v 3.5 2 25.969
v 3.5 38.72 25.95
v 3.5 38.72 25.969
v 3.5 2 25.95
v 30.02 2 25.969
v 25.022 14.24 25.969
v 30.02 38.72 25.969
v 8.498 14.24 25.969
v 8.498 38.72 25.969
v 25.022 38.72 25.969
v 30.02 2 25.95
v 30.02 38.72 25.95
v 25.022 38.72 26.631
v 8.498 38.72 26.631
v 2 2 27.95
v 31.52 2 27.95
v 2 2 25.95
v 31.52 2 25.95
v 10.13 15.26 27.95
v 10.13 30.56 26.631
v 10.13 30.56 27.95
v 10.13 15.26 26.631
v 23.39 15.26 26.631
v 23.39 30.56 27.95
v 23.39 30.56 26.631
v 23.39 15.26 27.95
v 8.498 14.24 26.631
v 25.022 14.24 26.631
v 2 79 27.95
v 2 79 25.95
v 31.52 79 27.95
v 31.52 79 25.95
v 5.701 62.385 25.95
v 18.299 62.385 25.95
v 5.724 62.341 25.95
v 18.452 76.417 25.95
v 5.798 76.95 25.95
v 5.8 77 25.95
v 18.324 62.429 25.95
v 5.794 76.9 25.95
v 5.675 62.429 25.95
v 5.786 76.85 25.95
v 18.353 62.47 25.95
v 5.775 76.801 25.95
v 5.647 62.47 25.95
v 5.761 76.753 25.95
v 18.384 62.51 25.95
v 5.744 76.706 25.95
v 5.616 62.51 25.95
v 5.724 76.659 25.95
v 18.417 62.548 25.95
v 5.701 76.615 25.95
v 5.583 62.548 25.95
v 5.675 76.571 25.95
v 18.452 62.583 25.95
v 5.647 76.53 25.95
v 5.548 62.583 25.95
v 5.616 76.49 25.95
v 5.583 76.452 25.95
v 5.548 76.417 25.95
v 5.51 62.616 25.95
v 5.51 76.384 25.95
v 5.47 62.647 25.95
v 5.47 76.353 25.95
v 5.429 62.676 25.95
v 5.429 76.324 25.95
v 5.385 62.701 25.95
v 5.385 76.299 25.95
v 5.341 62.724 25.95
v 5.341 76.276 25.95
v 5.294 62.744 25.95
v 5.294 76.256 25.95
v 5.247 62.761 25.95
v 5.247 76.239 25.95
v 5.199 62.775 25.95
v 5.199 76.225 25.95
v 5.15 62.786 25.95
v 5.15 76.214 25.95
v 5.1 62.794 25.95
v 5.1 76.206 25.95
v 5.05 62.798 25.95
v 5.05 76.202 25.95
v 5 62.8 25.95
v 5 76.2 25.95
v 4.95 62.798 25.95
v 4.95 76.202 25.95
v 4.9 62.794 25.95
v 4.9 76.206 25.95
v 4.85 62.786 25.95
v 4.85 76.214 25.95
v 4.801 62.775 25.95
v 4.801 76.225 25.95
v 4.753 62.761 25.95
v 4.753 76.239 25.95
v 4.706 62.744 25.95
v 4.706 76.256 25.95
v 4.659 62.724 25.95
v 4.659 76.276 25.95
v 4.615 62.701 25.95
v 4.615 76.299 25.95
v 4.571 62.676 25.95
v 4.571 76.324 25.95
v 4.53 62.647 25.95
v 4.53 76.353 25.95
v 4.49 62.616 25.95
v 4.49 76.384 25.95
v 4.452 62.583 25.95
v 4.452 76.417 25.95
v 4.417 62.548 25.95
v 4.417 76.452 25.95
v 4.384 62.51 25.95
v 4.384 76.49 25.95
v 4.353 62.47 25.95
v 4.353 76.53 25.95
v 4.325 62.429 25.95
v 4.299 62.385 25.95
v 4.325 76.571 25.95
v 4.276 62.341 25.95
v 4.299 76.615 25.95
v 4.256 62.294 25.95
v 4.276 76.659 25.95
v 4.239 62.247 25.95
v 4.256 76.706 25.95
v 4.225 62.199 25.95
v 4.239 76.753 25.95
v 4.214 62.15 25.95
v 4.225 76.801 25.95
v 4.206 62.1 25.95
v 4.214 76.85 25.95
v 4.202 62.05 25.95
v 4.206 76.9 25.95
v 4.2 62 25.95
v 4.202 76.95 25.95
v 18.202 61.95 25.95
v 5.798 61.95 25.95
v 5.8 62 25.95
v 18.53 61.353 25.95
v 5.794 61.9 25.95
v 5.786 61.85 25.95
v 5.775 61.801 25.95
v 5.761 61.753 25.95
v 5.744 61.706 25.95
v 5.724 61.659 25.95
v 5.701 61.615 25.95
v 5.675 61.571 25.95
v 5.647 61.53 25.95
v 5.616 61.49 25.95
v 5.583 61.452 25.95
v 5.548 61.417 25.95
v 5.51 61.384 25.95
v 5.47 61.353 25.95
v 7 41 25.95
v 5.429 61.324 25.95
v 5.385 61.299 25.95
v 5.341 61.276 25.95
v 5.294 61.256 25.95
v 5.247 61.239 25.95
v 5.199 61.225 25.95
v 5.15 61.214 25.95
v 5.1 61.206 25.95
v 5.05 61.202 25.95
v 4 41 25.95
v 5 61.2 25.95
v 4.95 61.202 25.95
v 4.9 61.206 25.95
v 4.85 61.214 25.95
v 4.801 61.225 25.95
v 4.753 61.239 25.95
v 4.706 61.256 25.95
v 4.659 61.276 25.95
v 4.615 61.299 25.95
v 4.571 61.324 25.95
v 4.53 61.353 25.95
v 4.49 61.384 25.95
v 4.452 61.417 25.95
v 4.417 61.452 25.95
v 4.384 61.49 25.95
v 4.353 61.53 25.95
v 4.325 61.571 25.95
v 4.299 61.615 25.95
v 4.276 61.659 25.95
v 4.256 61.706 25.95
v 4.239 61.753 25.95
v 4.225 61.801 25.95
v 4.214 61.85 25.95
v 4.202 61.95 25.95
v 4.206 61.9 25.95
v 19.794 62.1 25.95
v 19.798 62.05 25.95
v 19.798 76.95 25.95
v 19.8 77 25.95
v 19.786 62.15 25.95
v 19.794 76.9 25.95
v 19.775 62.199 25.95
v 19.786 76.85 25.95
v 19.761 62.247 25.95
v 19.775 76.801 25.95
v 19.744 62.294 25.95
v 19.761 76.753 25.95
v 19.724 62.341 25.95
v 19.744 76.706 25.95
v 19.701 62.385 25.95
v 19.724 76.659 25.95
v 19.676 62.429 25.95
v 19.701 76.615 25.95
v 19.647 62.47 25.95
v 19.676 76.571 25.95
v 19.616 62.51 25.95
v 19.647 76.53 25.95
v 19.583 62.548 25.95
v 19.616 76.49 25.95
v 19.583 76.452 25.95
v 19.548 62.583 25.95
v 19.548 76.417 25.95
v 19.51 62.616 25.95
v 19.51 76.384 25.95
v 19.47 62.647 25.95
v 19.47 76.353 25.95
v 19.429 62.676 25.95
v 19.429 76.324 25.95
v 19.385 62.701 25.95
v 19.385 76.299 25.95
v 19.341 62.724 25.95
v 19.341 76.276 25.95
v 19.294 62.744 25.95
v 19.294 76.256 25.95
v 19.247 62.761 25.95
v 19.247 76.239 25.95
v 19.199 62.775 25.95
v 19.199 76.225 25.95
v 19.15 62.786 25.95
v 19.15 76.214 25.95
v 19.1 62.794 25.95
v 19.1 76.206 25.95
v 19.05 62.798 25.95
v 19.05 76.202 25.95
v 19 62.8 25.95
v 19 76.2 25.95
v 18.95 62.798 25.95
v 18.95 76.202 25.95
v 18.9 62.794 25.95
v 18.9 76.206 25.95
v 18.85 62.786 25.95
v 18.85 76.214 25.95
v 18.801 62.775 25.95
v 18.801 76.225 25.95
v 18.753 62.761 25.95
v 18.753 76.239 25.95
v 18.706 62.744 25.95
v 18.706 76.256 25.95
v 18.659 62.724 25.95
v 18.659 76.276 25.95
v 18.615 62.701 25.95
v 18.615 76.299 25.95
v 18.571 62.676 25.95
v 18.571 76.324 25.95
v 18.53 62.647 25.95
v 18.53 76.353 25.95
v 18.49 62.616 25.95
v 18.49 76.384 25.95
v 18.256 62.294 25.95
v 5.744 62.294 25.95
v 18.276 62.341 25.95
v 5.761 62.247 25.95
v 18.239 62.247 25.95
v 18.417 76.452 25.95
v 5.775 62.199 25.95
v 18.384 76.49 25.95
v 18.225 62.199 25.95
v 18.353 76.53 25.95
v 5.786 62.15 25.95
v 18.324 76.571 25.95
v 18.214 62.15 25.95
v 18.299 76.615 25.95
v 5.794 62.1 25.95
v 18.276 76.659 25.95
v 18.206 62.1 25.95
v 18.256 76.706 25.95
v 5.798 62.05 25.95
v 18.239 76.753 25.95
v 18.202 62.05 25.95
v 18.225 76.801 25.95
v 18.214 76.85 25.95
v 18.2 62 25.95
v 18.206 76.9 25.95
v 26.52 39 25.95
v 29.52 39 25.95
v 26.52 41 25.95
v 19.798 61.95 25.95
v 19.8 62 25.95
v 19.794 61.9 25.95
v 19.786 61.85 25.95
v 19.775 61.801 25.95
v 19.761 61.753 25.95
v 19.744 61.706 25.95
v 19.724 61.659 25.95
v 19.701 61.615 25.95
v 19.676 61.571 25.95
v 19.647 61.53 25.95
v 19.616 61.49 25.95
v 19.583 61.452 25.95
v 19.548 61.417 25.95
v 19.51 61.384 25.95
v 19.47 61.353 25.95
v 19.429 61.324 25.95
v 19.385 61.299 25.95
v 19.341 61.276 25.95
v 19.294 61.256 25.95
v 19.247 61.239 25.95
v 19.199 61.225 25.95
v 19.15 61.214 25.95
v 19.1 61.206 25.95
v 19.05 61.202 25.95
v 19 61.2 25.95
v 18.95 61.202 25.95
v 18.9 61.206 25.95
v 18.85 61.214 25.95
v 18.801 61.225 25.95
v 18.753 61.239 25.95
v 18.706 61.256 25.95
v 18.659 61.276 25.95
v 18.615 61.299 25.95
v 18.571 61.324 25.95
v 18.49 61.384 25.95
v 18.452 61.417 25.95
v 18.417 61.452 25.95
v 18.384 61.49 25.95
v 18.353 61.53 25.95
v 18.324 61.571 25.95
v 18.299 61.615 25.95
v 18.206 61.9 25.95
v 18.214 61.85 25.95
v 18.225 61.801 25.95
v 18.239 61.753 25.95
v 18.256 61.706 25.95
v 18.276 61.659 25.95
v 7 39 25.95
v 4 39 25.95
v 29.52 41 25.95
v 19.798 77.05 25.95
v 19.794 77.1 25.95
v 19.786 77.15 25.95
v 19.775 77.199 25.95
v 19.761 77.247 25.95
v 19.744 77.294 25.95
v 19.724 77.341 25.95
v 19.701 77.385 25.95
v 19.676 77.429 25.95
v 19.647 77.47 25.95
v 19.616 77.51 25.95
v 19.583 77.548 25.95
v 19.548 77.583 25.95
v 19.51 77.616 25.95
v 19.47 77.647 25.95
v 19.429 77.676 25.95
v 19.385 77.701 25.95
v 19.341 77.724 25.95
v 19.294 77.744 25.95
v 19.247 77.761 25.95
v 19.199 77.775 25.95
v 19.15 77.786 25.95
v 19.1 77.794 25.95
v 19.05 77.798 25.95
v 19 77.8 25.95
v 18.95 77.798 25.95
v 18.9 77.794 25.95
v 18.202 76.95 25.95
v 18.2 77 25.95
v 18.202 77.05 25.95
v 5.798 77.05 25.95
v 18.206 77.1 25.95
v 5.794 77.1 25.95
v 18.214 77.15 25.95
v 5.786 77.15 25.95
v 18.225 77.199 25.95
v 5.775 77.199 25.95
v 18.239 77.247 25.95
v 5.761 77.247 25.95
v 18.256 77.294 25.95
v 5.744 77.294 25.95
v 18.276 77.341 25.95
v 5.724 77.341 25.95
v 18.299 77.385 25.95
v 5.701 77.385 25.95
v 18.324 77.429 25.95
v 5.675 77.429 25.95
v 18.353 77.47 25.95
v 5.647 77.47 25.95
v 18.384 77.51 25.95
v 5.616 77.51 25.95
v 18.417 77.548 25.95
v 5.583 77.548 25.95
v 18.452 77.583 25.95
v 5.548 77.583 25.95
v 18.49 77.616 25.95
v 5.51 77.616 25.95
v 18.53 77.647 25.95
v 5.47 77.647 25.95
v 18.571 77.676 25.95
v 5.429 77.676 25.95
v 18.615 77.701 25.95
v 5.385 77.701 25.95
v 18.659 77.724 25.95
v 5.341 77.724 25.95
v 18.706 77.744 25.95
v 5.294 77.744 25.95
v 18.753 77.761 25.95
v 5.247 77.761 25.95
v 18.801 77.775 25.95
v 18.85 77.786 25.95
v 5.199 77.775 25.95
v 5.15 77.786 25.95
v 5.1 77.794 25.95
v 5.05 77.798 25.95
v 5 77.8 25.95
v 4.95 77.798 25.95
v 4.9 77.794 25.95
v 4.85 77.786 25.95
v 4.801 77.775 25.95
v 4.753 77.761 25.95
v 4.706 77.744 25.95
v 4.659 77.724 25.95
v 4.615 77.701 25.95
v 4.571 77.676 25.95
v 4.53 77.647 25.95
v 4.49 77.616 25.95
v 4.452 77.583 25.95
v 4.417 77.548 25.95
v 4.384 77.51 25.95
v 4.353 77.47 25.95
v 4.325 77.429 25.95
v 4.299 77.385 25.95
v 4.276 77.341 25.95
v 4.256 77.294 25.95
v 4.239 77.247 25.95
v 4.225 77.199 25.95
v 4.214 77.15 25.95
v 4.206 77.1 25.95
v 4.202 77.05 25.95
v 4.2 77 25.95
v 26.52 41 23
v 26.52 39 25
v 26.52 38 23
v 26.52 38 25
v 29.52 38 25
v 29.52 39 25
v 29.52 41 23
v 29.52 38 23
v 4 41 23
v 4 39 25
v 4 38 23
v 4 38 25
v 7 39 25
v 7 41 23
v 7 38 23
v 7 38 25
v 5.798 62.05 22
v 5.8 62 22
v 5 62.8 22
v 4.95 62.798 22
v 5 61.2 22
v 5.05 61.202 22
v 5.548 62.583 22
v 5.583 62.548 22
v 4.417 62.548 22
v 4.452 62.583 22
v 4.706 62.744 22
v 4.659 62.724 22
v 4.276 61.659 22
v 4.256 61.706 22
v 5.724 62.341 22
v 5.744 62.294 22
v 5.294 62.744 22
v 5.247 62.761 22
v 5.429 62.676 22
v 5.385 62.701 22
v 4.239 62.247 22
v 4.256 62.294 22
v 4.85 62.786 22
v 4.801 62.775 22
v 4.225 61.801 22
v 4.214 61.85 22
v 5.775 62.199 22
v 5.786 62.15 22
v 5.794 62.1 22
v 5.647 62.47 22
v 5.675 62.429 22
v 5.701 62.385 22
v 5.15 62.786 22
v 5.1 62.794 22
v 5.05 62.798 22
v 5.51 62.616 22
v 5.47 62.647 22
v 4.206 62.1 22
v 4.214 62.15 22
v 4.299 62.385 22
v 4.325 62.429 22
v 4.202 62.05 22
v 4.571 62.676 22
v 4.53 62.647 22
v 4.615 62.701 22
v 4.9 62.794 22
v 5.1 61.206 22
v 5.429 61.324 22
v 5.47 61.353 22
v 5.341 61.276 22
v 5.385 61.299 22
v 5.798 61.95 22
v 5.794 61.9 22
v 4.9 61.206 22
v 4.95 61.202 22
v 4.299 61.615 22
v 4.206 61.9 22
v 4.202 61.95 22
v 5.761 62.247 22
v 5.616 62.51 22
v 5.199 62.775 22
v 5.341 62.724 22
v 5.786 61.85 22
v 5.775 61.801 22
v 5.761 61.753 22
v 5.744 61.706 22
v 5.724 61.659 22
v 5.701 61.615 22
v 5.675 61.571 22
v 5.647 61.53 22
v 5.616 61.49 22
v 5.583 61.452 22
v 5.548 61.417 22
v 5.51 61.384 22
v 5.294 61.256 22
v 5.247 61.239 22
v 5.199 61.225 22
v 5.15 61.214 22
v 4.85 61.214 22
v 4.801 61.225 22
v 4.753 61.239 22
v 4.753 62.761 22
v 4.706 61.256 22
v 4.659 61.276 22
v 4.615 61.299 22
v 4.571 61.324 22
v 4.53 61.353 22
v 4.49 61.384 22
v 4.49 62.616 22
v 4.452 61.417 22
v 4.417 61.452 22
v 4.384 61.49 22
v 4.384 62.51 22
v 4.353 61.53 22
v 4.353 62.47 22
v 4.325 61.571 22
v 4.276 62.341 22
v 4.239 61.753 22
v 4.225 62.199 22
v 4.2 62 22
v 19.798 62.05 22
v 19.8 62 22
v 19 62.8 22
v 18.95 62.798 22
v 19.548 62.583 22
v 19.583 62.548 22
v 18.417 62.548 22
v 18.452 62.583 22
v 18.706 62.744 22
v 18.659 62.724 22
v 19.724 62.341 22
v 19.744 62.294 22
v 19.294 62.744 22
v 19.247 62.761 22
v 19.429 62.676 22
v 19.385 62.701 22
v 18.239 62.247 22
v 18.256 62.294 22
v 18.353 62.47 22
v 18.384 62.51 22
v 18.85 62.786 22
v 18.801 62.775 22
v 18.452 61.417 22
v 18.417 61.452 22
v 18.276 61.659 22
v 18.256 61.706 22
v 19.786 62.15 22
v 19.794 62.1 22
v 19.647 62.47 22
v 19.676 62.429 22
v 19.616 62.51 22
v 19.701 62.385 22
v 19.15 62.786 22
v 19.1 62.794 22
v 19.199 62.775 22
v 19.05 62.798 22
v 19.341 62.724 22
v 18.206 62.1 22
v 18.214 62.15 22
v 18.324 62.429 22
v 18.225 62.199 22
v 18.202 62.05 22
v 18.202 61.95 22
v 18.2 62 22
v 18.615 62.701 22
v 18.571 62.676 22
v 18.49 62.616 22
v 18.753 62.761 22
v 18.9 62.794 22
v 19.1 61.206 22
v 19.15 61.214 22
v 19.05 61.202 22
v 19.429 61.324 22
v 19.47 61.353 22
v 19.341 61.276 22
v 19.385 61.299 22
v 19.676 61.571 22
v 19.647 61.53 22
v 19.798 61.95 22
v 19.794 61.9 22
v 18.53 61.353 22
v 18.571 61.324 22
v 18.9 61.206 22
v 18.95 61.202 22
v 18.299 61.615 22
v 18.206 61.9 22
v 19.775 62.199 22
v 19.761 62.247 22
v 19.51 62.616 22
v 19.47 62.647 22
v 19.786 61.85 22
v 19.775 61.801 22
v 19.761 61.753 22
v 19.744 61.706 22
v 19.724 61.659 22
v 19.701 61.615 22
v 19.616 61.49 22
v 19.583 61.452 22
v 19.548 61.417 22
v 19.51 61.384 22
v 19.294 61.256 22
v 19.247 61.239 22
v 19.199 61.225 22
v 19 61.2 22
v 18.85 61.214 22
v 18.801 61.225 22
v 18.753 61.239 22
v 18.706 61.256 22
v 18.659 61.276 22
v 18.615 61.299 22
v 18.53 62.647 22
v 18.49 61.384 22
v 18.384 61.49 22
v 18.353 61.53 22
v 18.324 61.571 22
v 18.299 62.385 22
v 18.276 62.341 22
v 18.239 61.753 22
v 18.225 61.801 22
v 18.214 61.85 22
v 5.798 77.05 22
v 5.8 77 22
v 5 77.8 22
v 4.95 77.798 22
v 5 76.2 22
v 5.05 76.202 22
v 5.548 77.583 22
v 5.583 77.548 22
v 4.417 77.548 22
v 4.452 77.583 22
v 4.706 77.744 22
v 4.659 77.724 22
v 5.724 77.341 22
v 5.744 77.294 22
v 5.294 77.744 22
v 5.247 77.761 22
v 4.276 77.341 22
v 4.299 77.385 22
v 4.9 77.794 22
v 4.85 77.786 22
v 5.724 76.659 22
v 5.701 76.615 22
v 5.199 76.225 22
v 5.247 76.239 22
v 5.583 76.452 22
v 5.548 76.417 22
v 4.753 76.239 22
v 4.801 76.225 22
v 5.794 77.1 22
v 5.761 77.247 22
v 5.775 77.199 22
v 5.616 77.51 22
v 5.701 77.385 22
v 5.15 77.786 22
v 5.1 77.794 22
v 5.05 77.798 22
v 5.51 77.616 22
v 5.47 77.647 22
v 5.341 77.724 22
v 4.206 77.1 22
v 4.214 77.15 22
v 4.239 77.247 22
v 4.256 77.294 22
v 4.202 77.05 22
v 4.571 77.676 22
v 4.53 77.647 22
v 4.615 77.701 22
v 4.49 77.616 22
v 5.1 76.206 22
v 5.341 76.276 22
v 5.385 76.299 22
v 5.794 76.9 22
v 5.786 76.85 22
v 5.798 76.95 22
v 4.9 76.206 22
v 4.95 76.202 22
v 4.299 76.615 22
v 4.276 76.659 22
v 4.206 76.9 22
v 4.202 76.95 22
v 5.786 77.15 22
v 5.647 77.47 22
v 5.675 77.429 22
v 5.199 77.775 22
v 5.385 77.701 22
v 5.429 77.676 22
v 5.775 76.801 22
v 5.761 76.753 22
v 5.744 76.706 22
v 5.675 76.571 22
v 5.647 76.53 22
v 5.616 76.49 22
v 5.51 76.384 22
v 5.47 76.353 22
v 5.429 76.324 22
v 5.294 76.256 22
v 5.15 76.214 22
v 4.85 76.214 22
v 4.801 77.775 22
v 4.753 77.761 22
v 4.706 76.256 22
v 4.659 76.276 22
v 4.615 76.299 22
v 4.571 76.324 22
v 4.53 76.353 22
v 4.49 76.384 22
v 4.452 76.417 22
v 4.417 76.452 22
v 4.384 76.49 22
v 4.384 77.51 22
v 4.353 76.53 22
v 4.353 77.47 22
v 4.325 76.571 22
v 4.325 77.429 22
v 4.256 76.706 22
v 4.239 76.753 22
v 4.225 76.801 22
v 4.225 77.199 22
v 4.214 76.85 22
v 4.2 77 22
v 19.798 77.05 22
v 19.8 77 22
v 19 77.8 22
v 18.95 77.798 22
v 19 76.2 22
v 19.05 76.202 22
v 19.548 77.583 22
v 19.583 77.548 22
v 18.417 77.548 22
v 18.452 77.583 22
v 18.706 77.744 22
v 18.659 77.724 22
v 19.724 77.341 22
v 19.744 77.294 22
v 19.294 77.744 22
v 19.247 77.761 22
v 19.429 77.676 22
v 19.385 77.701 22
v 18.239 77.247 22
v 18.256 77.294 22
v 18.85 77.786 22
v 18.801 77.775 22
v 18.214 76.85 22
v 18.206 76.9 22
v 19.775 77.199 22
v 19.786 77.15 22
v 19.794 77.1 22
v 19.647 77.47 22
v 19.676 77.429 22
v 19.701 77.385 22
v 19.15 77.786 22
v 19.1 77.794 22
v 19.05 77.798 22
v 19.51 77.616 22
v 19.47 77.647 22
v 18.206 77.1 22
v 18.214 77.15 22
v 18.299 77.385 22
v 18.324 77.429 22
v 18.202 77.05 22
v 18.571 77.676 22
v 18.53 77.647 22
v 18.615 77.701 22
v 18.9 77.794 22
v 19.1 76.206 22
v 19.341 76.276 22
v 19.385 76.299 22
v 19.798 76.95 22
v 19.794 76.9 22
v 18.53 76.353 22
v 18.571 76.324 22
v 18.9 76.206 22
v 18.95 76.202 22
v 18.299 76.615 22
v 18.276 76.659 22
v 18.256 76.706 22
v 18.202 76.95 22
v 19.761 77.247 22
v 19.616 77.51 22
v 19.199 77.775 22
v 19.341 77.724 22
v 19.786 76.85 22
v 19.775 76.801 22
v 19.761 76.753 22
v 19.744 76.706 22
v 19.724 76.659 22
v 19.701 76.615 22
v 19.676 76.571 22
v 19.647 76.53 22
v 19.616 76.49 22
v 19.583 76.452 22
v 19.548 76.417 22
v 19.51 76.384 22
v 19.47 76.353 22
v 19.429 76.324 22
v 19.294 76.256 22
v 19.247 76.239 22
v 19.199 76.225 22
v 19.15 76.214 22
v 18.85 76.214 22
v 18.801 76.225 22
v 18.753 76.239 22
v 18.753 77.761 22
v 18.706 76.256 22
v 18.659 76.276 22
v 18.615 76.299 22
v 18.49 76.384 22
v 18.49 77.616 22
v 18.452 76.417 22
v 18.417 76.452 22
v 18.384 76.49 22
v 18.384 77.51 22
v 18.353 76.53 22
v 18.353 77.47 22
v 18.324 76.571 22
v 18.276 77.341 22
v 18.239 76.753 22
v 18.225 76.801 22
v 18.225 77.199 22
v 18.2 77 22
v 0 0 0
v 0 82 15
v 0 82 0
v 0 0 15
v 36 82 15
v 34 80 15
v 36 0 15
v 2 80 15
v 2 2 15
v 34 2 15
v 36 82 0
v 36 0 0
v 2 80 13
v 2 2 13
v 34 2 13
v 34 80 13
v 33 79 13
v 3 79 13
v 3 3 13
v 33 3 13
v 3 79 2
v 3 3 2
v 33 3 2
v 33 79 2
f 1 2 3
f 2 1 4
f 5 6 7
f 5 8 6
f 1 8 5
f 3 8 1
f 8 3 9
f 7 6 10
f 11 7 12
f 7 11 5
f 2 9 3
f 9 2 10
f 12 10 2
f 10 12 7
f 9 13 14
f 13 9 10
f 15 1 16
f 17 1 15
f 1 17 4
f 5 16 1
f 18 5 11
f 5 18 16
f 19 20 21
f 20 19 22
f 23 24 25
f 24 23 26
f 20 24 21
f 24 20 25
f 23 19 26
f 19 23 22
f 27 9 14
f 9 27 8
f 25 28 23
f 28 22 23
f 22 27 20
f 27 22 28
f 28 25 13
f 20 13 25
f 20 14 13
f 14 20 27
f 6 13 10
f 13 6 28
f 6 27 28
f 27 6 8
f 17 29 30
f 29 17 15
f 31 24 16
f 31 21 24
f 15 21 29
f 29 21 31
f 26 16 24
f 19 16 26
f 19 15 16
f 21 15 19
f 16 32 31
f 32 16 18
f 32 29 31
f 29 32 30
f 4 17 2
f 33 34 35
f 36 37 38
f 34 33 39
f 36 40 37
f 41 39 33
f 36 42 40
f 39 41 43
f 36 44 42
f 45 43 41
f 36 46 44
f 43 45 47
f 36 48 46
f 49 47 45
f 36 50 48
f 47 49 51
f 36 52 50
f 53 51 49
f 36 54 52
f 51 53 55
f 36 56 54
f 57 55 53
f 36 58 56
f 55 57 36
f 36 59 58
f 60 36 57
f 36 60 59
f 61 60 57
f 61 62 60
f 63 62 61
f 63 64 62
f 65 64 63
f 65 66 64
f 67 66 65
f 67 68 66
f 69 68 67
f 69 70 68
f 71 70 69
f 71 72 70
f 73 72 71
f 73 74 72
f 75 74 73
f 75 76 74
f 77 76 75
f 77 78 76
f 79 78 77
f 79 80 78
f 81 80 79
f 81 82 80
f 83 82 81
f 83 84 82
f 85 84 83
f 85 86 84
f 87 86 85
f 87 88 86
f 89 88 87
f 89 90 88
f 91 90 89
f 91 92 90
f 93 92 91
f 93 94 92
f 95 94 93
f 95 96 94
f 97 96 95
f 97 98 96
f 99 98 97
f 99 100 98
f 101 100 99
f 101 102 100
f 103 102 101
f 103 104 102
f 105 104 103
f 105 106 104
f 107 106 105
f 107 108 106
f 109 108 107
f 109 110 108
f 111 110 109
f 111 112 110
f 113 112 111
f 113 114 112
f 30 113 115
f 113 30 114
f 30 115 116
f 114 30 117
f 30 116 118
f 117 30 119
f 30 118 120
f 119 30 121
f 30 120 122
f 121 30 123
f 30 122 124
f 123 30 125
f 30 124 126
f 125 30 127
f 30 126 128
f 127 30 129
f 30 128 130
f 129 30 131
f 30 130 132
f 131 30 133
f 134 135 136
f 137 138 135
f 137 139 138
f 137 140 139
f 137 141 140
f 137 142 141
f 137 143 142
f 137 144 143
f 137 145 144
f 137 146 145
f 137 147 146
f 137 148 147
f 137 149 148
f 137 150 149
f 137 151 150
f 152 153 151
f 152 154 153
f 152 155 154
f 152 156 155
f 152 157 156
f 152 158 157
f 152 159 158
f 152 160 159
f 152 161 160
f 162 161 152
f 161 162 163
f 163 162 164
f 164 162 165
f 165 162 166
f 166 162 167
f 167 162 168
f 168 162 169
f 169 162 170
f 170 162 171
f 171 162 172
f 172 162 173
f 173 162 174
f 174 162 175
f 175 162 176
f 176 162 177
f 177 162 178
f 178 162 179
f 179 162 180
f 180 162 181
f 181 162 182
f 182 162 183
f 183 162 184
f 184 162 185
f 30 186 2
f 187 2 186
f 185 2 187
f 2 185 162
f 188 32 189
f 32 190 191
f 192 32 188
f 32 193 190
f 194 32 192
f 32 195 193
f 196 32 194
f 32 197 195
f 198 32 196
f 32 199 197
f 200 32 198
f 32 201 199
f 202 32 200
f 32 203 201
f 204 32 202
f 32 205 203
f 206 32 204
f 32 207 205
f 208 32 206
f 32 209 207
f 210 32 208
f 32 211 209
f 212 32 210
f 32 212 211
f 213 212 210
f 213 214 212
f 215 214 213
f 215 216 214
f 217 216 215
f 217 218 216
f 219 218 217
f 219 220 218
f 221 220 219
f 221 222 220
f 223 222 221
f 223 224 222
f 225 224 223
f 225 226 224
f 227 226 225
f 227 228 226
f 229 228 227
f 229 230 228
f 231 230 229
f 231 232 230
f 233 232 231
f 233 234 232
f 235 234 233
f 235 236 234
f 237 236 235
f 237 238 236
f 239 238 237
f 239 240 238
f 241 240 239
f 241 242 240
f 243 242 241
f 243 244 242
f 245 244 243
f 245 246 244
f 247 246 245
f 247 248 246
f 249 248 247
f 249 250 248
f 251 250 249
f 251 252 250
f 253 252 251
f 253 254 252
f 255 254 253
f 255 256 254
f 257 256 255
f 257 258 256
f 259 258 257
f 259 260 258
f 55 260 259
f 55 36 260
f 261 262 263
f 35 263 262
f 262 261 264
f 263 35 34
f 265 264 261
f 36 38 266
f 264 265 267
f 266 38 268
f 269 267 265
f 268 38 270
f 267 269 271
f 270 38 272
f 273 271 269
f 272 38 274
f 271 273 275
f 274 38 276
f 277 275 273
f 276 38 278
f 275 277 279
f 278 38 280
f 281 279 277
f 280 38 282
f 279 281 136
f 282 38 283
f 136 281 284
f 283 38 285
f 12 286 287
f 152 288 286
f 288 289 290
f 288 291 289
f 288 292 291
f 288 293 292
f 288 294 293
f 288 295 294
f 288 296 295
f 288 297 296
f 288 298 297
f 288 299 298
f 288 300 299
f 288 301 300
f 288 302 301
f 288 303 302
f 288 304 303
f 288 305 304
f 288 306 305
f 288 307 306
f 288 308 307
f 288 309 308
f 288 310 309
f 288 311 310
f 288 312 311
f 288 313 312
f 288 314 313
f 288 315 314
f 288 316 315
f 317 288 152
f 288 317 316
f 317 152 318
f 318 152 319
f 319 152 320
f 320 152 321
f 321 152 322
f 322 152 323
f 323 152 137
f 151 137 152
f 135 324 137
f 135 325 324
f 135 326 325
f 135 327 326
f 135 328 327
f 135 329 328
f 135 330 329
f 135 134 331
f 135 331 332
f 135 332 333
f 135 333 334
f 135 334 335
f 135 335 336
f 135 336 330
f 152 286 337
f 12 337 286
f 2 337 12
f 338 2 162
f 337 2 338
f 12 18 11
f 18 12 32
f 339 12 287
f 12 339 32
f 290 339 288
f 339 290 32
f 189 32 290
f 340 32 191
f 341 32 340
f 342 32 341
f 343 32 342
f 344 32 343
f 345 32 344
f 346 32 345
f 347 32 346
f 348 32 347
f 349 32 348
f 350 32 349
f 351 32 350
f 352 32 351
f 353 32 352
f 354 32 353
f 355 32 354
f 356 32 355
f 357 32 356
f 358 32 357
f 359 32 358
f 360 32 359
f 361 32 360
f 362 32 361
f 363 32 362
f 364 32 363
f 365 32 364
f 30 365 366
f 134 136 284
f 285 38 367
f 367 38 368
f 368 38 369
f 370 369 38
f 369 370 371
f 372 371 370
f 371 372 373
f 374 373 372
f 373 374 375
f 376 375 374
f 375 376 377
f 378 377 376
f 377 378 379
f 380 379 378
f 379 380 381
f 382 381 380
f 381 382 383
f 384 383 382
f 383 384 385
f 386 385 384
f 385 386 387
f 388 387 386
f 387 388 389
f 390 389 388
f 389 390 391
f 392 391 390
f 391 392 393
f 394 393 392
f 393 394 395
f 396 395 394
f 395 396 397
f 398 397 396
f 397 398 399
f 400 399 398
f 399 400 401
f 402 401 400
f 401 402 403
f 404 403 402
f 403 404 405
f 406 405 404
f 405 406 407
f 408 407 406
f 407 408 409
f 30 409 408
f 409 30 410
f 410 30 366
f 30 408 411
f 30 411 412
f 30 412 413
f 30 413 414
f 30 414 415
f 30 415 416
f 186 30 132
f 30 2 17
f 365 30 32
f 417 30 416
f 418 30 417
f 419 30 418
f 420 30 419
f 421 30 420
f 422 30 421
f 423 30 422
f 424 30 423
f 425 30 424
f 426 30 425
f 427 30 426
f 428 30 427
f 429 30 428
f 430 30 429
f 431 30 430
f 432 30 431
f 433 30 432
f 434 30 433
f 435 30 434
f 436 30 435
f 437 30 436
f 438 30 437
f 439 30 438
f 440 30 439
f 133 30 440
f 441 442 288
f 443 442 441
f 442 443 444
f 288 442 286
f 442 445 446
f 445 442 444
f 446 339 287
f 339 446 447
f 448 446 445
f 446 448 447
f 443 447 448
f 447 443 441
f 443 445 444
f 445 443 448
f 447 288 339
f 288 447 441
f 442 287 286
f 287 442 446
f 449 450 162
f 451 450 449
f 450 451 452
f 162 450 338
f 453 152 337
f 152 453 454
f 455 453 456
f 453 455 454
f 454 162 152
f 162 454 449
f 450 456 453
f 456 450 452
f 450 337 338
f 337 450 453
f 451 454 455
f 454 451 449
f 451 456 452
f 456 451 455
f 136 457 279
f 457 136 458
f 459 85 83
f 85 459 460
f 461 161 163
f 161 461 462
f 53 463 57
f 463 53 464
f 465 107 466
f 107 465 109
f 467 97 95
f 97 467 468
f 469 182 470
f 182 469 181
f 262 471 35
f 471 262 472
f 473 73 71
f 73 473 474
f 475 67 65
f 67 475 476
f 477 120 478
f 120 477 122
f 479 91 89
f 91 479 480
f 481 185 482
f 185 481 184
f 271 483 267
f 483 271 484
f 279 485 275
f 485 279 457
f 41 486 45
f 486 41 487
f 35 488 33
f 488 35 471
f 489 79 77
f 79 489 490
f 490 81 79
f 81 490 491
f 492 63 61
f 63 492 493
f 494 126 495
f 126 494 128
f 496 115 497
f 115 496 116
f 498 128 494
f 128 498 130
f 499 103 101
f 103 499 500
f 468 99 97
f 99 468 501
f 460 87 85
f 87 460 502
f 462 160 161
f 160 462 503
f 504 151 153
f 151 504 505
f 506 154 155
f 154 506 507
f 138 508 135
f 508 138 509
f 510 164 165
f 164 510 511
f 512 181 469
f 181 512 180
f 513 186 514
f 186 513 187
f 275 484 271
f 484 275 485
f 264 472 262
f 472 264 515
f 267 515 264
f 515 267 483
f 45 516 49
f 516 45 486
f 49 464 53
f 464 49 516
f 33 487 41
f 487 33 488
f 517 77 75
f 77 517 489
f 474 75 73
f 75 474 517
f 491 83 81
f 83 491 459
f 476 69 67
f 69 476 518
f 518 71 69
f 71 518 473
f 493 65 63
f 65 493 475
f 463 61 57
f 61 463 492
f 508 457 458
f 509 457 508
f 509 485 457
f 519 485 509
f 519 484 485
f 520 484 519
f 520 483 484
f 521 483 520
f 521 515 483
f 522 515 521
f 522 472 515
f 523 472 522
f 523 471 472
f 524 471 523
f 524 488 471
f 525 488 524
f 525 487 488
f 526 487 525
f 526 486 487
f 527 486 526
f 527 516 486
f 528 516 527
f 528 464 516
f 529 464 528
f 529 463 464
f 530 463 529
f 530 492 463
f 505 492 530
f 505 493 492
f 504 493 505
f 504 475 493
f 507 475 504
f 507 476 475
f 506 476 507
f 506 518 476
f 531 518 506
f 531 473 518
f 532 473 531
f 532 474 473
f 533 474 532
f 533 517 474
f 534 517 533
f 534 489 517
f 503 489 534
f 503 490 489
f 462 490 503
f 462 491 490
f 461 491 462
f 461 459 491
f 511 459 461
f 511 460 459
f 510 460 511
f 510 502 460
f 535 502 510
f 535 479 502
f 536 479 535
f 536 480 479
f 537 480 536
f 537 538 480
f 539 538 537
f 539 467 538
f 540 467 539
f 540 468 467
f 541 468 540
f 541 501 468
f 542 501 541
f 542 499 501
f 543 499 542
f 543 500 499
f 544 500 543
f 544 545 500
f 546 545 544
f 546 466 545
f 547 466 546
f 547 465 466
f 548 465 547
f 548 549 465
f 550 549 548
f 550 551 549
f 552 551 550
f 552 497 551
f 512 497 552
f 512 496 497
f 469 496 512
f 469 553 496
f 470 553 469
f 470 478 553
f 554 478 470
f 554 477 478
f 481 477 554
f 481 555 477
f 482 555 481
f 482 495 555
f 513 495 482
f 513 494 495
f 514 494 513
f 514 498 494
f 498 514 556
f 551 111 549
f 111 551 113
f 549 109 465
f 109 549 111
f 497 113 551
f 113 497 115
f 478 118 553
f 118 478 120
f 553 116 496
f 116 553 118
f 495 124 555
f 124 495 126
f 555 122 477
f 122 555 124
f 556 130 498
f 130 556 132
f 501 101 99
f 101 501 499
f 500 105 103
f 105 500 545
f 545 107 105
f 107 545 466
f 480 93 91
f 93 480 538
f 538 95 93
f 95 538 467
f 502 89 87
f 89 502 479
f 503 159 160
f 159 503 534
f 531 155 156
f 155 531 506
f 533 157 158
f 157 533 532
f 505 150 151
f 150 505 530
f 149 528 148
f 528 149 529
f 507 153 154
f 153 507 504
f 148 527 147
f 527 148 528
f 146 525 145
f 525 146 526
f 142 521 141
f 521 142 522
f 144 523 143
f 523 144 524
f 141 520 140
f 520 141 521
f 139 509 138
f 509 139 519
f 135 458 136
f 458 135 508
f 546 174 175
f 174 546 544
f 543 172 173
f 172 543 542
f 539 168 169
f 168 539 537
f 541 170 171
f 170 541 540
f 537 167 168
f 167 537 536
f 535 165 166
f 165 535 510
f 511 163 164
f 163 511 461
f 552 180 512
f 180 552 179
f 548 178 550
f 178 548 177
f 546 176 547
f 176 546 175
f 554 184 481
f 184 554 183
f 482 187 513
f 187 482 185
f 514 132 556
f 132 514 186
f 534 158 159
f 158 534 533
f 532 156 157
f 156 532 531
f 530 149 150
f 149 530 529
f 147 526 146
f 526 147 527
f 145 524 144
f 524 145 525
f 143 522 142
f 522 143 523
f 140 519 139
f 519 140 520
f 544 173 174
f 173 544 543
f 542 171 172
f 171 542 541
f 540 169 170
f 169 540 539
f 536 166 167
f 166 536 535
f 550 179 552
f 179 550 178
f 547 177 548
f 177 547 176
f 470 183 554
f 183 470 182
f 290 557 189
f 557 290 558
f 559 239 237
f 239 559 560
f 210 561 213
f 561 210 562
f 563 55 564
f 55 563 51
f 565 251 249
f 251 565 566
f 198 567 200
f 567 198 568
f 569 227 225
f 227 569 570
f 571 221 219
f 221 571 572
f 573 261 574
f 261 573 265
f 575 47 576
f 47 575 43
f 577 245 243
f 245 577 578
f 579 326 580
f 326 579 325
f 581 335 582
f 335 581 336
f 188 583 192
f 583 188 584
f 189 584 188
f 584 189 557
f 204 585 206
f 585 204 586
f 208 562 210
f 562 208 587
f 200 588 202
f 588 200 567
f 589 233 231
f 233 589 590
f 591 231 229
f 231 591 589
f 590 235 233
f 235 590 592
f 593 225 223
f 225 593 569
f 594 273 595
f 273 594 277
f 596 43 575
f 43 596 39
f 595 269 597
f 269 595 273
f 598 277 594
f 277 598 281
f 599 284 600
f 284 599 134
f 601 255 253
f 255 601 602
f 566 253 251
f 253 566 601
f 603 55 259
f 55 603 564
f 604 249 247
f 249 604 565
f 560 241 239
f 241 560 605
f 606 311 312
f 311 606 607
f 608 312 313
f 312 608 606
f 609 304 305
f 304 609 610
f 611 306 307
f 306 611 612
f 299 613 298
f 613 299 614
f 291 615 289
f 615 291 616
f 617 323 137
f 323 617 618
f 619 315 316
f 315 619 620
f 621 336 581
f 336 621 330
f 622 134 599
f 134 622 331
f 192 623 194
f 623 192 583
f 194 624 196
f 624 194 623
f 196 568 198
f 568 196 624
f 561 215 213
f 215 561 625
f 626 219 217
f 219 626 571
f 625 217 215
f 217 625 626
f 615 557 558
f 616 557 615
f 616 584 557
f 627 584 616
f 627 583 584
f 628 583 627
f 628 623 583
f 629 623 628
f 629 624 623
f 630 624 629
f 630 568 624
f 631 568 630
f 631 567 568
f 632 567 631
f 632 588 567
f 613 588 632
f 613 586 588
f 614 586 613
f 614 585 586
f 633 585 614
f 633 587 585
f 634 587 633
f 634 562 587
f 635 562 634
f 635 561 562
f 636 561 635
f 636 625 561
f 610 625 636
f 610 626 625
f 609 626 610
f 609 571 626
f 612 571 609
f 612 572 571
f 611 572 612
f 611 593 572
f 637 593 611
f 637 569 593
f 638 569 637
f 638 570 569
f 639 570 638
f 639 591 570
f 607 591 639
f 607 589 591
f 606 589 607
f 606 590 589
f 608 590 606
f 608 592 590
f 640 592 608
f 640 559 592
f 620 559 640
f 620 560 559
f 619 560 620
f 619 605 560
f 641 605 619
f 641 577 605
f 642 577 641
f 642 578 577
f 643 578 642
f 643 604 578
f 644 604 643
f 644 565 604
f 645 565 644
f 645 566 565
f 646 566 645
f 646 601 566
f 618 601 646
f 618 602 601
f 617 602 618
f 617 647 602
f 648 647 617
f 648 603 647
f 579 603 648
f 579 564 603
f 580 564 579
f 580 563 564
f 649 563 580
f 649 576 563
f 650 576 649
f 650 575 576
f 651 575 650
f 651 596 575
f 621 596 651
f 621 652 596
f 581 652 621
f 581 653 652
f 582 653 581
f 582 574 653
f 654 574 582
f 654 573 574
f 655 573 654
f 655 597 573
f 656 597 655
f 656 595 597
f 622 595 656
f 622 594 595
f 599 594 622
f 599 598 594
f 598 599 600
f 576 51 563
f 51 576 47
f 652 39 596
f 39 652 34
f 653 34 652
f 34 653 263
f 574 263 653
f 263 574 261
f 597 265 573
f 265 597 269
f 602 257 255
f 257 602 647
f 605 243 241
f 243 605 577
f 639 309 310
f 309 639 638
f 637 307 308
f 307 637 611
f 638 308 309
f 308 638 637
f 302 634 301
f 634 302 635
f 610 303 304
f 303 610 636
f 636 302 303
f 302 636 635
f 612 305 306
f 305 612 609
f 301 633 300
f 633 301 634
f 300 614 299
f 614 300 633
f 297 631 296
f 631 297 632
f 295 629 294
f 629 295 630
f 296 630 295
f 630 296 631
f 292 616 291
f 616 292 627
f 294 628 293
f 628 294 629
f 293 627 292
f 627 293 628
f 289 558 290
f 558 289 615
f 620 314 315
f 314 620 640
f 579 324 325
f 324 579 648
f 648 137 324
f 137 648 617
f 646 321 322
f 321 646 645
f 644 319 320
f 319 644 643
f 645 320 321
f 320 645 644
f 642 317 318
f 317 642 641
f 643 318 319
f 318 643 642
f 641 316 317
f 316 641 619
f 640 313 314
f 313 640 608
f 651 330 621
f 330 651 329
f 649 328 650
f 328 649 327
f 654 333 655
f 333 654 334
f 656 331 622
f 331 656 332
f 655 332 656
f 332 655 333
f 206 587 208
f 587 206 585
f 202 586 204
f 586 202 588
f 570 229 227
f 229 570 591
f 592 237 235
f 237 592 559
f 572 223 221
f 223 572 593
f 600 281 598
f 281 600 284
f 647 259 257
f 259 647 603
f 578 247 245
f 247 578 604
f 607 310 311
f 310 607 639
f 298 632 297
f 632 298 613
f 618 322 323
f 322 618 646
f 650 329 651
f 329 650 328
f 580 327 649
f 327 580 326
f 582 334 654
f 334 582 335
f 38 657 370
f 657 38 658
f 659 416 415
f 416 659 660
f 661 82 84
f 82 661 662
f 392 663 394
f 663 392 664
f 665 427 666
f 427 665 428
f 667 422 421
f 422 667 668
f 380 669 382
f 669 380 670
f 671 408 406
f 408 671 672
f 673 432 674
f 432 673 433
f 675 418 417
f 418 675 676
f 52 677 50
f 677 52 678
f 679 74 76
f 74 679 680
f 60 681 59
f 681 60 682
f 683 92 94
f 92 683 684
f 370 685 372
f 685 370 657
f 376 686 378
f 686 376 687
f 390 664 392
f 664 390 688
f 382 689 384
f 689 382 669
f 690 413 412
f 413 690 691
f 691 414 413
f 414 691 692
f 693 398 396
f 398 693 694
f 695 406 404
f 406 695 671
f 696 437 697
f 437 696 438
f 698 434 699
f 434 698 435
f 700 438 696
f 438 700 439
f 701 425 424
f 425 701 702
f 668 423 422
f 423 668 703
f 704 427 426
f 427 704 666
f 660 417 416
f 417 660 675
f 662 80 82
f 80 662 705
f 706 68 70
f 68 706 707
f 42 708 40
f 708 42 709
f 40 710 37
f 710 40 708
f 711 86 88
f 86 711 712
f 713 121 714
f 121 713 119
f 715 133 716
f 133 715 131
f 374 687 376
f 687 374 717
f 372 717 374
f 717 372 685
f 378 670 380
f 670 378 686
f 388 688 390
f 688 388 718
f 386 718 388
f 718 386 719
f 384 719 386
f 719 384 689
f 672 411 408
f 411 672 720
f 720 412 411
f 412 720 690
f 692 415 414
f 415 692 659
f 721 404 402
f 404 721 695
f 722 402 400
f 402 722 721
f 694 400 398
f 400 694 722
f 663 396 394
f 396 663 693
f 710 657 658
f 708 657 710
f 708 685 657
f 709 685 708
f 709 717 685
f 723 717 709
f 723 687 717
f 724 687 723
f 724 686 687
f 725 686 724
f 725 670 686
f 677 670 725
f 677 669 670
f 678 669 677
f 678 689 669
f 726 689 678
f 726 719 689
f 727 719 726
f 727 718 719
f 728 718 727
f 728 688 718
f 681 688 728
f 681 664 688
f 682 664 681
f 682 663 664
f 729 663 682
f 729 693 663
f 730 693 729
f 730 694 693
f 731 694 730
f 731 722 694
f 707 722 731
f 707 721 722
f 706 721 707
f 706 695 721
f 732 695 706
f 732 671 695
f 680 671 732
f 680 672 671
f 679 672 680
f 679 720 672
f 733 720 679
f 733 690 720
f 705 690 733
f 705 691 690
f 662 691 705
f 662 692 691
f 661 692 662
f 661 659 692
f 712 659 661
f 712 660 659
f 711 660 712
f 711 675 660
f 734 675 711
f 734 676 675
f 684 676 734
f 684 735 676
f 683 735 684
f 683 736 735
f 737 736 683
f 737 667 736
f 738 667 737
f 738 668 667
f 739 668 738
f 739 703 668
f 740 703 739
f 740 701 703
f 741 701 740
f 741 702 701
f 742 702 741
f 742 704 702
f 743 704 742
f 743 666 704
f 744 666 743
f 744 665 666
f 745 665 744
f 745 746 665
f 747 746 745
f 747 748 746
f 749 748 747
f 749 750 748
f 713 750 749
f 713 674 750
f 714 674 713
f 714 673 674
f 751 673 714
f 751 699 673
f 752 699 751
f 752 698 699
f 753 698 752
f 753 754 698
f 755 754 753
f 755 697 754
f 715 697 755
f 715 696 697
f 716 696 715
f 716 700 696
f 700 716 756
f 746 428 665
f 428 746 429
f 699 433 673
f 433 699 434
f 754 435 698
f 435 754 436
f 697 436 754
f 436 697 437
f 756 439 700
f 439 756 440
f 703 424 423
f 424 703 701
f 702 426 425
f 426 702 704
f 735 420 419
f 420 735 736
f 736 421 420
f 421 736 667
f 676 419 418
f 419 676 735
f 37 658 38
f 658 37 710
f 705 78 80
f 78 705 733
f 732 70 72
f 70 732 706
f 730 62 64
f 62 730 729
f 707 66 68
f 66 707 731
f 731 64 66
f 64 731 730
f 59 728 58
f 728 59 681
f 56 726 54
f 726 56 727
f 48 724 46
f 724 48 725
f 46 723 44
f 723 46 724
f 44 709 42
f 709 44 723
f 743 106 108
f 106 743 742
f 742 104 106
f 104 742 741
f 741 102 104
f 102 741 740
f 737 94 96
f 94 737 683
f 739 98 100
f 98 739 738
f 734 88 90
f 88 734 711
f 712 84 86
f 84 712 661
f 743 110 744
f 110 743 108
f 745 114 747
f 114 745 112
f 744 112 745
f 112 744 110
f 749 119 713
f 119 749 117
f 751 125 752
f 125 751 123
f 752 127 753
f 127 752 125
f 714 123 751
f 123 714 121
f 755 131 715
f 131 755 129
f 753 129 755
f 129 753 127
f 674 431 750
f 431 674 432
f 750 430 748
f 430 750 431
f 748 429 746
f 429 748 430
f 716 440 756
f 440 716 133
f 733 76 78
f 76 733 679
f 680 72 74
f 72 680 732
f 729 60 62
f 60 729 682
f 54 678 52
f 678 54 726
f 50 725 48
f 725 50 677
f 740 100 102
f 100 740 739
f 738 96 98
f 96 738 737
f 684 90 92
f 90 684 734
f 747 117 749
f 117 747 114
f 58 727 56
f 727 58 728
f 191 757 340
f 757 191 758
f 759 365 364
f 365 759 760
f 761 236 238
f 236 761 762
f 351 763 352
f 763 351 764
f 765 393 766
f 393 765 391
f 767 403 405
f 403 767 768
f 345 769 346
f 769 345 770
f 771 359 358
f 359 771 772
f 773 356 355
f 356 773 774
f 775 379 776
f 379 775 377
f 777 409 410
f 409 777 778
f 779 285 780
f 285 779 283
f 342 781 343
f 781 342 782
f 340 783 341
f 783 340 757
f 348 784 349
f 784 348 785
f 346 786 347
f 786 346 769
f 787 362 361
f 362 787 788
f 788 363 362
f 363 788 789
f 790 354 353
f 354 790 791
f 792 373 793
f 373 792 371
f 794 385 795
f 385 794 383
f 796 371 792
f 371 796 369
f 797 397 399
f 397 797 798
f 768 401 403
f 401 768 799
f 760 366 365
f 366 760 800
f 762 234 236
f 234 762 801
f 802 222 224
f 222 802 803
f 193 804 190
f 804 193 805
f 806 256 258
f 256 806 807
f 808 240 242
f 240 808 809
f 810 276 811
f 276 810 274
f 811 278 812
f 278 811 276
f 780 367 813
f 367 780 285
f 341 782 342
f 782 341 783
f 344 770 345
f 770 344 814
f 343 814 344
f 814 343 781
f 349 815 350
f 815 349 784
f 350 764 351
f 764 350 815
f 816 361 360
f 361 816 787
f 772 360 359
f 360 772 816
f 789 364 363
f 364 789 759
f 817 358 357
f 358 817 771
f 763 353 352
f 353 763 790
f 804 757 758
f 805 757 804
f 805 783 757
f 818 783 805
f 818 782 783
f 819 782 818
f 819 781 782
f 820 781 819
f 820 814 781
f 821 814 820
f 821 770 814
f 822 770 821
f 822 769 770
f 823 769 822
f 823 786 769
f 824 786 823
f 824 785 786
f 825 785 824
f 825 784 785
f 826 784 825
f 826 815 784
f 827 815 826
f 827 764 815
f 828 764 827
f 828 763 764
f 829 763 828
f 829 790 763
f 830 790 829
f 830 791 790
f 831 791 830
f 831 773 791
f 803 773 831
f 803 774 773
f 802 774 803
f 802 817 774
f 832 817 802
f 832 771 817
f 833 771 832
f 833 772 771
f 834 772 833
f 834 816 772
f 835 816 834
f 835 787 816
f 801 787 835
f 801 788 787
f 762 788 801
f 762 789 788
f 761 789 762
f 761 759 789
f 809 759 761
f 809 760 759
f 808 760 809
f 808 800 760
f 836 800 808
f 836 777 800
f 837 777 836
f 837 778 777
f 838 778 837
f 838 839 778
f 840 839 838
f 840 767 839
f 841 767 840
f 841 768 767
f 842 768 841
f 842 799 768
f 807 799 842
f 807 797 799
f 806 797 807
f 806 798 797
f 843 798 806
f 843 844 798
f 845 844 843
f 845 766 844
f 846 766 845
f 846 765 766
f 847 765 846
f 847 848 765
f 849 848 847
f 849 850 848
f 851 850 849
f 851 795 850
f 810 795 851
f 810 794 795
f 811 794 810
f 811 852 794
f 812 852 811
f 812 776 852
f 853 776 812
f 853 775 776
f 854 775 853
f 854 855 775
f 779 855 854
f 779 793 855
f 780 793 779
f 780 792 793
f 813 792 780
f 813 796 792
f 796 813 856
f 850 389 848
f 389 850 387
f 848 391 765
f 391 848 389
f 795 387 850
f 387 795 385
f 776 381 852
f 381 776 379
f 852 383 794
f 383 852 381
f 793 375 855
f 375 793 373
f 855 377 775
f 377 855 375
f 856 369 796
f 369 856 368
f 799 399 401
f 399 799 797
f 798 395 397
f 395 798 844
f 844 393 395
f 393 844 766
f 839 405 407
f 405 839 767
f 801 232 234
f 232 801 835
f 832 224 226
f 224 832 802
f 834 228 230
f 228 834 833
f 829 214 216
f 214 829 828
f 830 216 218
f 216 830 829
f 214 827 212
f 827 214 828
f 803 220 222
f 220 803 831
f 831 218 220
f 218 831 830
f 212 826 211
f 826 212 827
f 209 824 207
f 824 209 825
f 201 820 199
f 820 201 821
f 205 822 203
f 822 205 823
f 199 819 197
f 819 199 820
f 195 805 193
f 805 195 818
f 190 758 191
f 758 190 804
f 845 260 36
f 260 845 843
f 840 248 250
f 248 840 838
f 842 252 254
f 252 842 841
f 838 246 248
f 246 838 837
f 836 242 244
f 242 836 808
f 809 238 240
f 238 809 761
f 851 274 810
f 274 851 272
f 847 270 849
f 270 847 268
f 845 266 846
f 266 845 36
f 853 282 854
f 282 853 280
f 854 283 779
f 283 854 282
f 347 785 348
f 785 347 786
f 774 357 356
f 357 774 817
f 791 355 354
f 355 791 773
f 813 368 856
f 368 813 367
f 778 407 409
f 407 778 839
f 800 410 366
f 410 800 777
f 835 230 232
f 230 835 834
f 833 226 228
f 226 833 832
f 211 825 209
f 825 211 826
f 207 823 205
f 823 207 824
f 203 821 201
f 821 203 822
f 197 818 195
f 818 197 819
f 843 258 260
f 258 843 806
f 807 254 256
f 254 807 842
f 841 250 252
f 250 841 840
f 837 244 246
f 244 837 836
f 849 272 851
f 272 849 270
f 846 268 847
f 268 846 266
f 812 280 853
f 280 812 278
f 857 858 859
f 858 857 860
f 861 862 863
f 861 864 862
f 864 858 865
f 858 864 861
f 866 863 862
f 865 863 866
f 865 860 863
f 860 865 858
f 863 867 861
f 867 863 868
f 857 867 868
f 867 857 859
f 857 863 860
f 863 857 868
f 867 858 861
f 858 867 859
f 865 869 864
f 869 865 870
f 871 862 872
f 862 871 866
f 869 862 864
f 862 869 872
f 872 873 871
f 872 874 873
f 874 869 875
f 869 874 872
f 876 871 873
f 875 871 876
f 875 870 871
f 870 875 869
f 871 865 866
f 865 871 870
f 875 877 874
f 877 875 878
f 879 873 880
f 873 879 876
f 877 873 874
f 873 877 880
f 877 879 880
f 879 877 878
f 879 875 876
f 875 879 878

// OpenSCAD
// file: non-printing-parts.scad
// NON-PRINTED MODULES

module battery() {
    union() {
        color("silver")
            cube([30, 43.25, 7]);
        translate([0, 43.249, 0])
            color("yellow")
                cube([30, 6.75, 7]);
    }
}

module wemos() {
        union() {
            color([0.26, 0.32, 0.6])
                cube([26, 36, 0.95]); // board
            
            translate([6.5, 13, 0.949]) 
            color("silver")
                cube([13, 15, 2.6]); // ESP8266
            
            translate([4.9, 12, 0.949])             
            color("black")
                cube([16.2, 24, 0.65]); // ESP8266 carrier
            
            translate([10, 0, -2.7])
                color("silver")
                    cube([7, 5.7, 2.7]); // USB             
        }
}

module charger() {
        union() {
            color([0.26, 0.32, 0.6])
                cube([19, 20, 1.55]); // board
            translate([5.5, 14, 0.949])
                color("black")
                    cube([8, 6, 5]); // JST
            translate([6, 0, 1.54])
                color("silver")
                    cube([7, 5.7, 2.7]); // USB             
        }
}
// main file
include <non-printing-parts.scad>

// wemos is 26x36x0.95ish

$fn = 100;

module lid() {
    union() {
        difference() {
            translate([0, 0, 0.95])
                cube([29.52, 77, 2]);

            translate([1.5, 0, 0])
            scale(1.02)
                wemos();
        }
        translate([24.52, 36, -2])
            cube([3,3,2]);
        translate([24.52, 37, 0])
            cube([3,2,2]);    
        translate([2, 37, 0])
            cube([3,2,2]);        
        translate([2, 36, -2])
            cube([3,3,2]);    
    }
    
    // heat stakes
    translate([3, 60, -3])
        cylinder(r=0.8, h=5);
    translate([17, 60, -3])    
        cylinder(r=0.8, h=5);
    translate([3, 75, -3])
        cylinder(r=0.8, h=5);
    translate([17, 75, -3])    
        cylinder(r=0.8, h=5);
    
}

module box() {
    difference() {
        cube([36, 82, 15]); // positive box
        translate([2, 2, 13]) // lip
            cube([32, 78, 15]);        
        translate([3, 3, 2]) // box inner
            cube([30, 76, 15]);
    }
}

translate([2, 2, 25])
    lid();
box();
